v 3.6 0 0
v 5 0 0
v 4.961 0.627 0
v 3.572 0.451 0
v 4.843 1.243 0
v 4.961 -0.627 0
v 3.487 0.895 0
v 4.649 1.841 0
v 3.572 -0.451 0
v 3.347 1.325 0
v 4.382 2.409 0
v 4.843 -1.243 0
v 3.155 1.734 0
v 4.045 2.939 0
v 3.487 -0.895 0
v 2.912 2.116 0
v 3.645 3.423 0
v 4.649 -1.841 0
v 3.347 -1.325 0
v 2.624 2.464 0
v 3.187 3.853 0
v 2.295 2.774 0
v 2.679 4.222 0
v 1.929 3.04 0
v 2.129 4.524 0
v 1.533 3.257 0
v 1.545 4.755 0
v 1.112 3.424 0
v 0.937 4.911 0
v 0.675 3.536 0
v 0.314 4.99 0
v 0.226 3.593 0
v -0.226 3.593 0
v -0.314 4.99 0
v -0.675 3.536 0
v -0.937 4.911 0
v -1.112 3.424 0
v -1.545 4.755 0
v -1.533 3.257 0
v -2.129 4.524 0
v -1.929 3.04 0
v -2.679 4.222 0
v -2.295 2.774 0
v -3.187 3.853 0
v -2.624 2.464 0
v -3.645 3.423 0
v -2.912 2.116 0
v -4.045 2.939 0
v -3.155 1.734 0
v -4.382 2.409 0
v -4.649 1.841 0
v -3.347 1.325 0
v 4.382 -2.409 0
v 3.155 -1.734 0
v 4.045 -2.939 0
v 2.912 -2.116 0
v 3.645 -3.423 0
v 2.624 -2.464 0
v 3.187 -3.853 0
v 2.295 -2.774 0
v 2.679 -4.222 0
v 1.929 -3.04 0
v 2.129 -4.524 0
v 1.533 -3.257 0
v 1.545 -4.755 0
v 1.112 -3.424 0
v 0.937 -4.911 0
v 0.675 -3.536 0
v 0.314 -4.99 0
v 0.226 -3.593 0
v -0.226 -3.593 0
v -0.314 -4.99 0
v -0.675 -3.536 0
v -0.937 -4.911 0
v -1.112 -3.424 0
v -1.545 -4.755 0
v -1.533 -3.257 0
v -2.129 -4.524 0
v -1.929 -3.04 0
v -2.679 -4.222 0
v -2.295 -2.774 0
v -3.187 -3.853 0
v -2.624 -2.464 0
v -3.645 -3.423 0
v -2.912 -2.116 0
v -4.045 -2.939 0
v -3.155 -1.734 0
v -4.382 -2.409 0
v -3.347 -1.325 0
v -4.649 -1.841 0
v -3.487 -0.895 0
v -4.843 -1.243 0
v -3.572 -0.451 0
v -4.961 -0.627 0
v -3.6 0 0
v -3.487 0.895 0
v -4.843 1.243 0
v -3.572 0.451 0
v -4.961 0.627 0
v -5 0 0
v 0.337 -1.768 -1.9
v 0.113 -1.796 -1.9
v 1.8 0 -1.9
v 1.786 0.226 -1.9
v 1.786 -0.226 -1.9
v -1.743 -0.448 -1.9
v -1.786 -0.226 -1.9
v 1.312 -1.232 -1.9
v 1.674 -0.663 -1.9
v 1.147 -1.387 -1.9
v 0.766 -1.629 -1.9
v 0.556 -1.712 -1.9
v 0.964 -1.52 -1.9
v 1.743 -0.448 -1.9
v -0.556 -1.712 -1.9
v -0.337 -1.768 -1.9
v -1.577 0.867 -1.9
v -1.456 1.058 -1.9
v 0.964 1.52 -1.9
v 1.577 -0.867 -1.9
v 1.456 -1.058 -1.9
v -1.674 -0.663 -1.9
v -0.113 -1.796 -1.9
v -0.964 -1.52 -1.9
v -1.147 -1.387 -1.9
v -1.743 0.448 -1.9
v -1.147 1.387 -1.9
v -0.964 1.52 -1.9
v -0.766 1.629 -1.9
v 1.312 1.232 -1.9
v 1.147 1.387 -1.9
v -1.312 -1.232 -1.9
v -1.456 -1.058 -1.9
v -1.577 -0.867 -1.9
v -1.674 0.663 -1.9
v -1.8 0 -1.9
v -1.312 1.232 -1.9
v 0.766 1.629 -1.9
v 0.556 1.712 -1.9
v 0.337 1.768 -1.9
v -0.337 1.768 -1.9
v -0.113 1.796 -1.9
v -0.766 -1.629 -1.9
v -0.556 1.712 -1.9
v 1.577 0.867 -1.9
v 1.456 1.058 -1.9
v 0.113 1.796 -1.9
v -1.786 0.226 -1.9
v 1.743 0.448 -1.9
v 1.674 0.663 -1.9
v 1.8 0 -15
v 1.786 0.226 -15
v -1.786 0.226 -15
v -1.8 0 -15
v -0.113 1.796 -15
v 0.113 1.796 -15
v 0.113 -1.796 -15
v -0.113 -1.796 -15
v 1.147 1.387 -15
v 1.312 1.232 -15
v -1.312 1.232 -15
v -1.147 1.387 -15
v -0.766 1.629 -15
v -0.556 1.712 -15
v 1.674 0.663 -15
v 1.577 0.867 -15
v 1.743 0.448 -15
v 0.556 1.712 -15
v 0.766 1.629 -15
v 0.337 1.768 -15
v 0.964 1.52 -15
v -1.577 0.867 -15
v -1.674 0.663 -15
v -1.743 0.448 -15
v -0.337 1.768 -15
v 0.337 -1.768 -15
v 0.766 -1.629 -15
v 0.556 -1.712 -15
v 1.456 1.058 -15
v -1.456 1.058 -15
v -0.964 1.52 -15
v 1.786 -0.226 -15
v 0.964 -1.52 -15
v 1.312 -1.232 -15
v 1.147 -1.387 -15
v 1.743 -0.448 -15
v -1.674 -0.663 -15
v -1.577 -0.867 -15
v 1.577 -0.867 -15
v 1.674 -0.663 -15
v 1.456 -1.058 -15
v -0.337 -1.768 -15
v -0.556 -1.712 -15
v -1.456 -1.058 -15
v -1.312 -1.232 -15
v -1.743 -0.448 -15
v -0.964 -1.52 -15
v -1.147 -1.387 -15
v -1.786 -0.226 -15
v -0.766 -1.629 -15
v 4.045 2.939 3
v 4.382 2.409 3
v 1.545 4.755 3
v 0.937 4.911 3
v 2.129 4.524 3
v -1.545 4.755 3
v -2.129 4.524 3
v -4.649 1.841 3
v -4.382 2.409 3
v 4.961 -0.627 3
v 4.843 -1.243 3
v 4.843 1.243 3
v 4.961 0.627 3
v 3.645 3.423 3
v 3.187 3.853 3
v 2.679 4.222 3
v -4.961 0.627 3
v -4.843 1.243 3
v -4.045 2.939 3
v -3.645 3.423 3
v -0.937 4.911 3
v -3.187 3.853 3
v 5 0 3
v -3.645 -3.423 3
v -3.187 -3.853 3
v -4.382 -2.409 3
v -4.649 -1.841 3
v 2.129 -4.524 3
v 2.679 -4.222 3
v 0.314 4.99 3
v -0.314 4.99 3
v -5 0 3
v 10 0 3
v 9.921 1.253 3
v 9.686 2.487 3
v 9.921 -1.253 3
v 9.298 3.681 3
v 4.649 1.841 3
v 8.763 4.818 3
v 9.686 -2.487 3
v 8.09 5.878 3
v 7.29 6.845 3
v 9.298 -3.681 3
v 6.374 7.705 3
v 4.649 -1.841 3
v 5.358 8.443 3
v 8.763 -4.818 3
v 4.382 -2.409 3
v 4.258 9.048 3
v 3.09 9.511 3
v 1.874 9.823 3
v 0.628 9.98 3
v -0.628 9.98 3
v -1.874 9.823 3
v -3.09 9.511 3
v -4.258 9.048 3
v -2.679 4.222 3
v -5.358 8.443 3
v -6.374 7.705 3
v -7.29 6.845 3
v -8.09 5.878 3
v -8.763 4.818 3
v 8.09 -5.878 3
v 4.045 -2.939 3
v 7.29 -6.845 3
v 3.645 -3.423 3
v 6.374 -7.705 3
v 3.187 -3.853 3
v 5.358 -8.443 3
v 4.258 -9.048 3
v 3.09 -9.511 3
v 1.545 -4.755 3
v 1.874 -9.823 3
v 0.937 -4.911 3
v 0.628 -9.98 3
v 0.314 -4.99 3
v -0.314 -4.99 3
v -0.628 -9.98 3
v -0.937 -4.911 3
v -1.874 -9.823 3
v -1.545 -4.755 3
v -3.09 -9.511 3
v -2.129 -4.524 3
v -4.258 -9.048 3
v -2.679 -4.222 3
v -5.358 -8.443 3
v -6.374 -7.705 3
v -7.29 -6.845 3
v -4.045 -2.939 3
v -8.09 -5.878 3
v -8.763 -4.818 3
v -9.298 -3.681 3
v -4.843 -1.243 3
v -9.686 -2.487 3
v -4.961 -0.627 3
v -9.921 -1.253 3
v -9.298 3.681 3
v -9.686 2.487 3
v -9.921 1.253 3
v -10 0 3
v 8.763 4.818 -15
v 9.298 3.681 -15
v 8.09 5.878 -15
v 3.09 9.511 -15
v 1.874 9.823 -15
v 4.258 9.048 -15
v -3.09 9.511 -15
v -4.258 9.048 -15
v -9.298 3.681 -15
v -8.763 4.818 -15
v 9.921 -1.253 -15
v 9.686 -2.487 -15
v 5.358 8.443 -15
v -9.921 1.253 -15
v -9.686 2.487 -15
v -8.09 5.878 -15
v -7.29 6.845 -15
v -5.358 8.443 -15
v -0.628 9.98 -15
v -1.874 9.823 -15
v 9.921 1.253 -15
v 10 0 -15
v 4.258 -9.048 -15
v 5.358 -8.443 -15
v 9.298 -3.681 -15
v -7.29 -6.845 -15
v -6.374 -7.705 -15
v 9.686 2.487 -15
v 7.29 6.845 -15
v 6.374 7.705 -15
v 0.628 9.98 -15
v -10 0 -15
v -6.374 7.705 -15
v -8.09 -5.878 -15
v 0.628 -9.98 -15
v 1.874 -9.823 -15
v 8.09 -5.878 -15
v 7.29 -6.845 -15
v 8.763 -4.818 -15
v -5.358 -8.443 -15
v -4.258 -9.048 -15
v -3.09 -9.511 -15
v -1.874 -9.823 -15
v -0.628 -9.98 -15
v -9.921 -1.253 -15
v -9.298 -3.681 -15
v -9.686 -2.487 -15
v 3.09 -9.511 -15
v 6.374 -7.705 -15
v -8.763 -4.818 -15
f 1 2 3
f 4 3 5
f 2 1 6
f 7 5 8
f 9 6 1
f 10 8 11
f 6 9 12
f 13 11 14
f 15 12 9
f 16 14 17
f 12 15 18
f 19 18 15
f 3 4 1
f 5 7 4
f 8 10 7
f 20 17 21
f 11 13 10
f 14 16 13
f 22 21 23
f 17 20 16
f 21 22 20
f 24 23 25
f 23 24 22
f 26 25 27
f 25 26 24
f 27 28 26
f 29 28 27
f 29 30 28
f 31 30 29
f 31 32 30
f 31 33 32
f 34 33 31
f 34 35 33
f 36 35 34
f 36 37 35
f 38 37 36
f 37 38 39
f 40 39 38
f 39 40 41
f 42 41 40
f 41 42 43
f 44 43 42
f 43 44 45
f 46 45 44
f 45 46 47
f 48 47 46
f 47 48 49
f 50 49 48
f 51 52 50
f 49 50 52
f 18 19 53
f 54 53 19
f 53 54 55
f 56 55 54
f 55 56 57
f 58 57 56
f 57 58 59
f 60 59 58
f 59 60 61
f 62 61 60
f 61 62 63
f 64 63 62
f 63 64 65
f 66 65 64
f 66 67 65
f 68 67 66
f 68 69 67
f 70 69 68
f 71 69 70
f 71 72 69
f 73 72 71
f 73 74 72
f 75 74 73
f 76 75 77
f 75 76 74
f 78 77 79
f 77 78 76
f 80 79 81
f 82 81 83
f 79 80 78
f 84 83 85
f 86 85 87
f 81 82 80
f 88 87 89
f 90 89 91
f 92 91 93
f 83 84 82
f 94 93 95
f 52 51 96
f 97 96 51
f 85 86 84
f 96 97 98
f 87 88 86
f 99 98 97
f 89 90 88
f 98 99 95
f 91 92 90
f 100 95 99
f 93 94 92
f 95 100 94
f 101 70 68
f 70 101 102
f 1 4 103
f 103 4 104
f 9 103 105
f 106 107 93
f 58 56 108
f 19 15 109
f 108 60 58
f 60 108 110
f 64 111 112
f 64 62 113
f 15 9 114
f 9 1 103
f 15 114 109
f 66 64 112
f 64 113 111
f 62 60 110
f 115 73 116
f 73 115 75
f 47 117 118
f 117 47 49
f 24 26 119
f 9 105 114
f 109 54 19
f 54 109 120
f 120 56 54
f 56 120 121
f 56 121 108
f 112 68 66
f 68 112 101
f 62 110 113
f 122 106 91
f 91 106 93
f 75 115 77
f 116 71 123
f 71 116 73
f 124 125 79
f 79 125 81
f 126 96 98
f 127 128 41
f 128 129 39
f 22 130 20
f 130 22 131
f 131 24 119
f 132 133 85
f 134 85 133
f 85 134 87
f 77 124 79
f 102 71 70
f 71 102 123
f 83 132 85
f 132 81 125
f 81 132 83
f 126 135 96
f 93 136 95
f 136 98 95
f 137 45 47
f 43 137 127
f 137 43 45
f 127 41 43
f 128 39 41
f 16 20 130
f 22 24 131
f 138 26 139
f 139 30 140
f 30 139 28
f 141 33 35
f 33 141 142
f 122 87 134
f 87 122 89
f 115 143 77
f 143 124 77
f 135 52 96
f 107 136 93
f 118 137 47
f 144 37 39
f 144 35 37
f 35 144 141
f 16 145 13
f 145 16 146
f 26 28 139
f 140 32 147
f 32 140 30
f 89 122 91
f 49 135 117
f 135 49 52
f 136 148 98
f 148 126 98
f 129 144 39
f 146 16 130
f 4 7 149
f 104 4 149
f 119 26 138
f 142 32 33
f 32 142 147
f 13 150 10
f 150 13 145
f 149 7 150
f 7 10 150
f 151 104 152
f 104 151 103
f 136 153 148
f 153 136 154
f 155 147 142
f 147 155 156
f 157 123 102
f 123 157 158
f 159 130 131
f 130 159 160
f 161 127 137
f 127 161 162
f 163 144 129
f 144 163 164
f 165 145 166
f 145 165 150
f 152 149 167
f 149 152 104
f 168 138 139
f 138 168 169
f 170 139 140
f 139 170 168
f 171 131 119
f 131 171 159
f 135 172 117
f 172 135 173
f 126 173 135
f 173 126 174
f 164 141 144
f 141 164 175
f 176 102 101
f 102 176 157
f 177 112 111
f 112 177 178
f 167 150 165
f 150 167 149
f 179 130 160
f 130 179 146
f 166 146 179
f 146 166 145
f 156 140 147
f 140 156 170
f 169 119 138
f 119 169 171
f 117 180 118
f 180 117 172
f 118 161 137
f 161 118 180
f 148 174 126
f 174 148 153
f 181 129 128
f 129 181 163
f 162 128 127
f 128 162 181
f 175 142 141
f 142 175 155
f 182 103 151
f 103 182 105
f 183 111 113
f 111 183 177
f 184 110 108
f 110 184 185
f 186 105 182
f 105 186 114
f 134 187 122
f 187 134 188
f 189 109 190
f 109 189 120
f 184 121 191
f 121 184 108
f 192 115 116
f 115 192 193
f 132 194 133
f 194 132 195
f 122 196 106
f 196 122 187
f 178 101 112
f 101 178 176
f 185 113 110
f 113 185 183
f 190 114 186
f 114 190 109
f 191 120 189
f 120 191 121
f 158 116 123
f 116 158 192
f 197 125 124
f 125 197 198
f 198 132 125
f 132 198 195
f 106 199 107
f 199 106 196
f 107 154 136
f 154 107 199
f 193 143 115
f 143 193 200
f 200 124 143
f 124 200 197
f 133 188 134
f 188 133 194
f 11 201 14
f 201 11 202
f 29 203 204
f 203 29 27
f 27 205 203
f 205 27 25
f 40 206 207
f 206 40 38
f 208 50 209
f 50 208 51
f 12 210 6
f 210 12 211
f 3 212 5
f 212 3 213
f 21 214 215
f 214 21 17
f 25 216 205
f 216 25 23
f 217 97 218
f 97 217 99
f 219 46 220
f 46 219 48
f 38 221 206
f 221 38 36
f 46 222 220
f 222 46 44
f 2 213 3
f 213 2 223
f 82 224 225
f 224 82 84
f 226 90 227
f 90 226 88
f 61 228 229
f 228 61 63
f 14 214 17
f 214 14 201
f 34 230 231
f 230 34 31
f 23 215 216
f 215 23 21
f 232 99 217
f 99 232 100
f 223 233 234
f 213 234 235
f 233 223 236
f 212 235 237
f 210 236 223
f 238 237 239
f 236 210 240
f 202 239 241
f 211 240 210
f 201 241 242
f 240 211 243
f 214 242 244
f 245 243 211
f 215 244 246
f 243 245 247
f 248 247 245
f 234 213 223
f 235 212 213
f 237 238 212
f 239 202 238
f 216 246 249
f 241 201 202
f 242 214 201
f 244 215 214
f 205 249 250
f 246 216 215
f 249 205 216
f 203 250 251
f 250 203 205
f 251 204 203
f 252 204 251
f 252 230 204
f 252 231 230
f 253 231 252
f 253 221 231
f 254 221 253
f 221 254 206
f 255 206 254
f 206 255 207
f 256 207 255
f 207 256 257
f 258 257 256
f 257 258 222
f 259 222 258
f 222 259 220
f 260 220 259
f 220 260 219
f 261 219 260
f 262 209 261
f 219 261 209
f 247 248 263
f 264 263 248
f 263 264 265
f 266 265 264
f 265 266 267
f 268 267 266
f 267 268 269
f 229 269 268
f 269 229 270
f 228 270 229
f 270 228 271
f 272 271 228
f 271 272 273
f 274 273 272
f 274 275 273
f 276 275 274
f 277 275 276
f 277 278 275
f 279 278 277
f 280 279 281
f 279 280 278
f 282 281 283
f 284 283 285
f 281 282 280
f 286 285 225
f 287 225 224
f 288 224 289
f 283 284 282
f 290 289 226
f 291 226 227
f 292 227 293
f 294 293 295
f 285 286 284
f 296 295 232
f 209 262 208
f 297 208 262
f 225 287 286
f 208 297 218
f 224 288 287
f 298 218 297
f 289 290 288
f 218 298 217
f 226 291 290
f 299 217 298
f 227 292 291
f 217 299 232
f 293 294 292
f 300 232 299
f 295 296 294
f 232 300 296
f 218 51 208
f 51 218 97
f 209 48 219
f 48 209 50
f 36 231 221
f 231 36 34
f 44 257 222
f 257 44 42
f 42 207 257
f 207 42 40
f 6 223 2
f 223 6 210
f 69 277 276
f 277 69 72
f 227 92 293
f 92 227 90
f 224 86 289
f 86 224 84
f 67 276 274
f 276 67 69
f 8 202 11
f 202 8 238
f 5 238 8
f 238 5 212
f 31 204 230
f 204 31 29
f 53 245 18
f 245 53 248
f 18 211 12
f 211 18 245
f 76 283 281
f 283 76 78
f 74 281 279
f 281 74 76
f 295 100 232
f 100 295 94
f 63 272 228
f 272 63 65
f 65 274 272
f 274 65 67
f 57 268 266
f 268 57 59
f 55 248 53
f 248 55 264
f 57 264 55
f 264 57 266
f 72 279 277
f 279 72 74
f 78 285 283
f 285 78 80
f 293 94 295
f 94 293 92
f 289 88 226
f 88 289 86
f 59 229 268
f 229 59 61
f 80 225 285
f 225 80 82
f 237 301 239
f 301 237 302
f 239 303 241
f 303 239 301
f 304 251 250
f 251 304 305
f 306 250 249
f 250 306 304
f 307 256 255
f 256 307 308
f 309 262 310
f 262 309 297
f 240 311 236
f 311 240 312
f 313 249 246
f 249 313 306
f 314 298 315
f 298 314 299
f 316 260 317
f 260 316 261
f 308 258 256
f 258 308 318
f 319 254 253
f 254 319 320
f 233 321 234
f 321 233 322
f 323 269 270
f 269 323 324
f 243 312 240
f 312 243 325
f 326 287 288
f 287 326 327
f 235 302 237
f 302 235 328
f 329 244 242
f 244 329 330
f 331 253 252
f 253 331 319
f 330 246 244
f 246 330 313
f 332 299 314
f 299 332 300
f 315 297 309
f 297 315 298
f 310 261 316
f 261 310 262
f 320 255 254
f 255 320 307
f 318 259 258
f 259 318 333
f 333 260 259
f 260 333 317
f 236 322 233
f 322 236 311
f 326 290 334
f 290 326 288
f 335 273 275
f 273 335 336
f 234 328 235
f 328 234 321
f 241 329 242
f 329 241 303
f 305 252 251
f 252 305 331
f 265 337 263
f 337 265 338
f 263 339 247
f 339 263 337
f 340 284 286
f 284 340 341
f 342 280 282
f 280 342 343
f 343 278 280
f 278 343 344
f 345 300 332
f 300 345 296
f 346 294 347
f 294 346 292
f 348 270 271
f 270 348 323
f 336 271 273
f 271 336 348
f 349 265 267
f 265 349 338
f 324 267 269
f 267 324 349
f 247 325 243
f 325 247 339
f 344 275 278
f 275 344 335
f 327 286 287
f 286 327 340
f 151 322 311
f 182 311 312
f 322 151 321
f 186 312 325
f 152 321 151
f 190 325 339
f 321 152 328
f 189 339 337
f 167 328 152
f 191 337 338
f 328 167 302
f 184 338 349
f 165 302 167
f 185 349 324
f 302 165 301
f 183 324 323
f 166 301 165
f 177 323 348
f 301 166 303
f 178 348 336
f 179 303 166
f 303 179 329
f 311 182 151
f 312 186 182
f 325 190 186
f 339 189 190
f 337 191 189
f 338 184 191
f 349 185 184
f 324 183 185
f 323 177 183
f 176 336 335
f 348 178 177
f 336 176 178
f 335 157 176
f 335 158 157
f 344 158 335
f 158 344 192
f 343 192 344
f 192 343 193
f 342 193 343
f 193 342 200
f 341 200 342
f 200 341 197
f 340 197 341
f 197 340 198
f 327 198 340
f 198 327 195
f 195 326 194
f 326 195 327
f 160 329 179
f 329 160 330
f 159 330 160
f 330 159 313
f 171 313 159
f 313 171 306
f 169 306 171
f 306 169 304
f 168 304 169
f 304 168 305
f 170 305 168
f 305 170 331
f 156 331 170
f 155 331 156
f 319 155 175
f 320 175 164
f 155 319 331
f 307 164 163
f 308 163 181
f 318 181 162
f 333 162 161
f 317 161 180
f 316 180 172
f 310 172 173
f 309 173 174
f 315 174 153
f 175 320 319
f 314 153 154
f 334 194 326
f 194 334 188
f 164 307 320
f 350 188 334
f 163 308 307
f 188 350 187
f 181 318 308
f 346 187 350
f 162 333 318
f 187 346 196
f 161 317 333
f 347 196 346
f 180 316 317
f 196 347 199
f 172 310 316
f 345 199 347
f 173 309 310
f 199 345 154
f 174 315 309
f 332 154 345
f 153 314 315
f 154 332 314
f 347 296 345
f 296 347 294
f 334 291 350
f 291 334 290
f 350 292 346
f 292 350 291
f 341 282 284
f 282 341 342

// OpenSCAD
$fn = 50;

difference() {
	union() {
		translate(v = [0, 0, -15.0]) {
			cylinder(h = 18, r = 10.0);
		}
	}
	union() {
		translate(v = [0, 0, 0]) {
			rotate(a = [0, 0, 0]) {
				difference() {
					union() {
						translate(v = [0, 0, -18.0]) {
							cylinder(h = 18, r = 1.5);
						}
						translate(v = [0, 0, -1.9]) {
							cylinder(h = 1.9, r1 = 1.8, r2 = 3.6);
						}
						translate(v = [0, 0, -18.0]) {
							cylinder(h = 18, r = 1.8);
						}
						translate(v = [0, 0, -18.0]) {
							cylinder(h = 18, r = 1.5);
						}
					}
					union();
				}
			}
		}
		#cylinder(h = 3, r = 5.0);
	}
}
